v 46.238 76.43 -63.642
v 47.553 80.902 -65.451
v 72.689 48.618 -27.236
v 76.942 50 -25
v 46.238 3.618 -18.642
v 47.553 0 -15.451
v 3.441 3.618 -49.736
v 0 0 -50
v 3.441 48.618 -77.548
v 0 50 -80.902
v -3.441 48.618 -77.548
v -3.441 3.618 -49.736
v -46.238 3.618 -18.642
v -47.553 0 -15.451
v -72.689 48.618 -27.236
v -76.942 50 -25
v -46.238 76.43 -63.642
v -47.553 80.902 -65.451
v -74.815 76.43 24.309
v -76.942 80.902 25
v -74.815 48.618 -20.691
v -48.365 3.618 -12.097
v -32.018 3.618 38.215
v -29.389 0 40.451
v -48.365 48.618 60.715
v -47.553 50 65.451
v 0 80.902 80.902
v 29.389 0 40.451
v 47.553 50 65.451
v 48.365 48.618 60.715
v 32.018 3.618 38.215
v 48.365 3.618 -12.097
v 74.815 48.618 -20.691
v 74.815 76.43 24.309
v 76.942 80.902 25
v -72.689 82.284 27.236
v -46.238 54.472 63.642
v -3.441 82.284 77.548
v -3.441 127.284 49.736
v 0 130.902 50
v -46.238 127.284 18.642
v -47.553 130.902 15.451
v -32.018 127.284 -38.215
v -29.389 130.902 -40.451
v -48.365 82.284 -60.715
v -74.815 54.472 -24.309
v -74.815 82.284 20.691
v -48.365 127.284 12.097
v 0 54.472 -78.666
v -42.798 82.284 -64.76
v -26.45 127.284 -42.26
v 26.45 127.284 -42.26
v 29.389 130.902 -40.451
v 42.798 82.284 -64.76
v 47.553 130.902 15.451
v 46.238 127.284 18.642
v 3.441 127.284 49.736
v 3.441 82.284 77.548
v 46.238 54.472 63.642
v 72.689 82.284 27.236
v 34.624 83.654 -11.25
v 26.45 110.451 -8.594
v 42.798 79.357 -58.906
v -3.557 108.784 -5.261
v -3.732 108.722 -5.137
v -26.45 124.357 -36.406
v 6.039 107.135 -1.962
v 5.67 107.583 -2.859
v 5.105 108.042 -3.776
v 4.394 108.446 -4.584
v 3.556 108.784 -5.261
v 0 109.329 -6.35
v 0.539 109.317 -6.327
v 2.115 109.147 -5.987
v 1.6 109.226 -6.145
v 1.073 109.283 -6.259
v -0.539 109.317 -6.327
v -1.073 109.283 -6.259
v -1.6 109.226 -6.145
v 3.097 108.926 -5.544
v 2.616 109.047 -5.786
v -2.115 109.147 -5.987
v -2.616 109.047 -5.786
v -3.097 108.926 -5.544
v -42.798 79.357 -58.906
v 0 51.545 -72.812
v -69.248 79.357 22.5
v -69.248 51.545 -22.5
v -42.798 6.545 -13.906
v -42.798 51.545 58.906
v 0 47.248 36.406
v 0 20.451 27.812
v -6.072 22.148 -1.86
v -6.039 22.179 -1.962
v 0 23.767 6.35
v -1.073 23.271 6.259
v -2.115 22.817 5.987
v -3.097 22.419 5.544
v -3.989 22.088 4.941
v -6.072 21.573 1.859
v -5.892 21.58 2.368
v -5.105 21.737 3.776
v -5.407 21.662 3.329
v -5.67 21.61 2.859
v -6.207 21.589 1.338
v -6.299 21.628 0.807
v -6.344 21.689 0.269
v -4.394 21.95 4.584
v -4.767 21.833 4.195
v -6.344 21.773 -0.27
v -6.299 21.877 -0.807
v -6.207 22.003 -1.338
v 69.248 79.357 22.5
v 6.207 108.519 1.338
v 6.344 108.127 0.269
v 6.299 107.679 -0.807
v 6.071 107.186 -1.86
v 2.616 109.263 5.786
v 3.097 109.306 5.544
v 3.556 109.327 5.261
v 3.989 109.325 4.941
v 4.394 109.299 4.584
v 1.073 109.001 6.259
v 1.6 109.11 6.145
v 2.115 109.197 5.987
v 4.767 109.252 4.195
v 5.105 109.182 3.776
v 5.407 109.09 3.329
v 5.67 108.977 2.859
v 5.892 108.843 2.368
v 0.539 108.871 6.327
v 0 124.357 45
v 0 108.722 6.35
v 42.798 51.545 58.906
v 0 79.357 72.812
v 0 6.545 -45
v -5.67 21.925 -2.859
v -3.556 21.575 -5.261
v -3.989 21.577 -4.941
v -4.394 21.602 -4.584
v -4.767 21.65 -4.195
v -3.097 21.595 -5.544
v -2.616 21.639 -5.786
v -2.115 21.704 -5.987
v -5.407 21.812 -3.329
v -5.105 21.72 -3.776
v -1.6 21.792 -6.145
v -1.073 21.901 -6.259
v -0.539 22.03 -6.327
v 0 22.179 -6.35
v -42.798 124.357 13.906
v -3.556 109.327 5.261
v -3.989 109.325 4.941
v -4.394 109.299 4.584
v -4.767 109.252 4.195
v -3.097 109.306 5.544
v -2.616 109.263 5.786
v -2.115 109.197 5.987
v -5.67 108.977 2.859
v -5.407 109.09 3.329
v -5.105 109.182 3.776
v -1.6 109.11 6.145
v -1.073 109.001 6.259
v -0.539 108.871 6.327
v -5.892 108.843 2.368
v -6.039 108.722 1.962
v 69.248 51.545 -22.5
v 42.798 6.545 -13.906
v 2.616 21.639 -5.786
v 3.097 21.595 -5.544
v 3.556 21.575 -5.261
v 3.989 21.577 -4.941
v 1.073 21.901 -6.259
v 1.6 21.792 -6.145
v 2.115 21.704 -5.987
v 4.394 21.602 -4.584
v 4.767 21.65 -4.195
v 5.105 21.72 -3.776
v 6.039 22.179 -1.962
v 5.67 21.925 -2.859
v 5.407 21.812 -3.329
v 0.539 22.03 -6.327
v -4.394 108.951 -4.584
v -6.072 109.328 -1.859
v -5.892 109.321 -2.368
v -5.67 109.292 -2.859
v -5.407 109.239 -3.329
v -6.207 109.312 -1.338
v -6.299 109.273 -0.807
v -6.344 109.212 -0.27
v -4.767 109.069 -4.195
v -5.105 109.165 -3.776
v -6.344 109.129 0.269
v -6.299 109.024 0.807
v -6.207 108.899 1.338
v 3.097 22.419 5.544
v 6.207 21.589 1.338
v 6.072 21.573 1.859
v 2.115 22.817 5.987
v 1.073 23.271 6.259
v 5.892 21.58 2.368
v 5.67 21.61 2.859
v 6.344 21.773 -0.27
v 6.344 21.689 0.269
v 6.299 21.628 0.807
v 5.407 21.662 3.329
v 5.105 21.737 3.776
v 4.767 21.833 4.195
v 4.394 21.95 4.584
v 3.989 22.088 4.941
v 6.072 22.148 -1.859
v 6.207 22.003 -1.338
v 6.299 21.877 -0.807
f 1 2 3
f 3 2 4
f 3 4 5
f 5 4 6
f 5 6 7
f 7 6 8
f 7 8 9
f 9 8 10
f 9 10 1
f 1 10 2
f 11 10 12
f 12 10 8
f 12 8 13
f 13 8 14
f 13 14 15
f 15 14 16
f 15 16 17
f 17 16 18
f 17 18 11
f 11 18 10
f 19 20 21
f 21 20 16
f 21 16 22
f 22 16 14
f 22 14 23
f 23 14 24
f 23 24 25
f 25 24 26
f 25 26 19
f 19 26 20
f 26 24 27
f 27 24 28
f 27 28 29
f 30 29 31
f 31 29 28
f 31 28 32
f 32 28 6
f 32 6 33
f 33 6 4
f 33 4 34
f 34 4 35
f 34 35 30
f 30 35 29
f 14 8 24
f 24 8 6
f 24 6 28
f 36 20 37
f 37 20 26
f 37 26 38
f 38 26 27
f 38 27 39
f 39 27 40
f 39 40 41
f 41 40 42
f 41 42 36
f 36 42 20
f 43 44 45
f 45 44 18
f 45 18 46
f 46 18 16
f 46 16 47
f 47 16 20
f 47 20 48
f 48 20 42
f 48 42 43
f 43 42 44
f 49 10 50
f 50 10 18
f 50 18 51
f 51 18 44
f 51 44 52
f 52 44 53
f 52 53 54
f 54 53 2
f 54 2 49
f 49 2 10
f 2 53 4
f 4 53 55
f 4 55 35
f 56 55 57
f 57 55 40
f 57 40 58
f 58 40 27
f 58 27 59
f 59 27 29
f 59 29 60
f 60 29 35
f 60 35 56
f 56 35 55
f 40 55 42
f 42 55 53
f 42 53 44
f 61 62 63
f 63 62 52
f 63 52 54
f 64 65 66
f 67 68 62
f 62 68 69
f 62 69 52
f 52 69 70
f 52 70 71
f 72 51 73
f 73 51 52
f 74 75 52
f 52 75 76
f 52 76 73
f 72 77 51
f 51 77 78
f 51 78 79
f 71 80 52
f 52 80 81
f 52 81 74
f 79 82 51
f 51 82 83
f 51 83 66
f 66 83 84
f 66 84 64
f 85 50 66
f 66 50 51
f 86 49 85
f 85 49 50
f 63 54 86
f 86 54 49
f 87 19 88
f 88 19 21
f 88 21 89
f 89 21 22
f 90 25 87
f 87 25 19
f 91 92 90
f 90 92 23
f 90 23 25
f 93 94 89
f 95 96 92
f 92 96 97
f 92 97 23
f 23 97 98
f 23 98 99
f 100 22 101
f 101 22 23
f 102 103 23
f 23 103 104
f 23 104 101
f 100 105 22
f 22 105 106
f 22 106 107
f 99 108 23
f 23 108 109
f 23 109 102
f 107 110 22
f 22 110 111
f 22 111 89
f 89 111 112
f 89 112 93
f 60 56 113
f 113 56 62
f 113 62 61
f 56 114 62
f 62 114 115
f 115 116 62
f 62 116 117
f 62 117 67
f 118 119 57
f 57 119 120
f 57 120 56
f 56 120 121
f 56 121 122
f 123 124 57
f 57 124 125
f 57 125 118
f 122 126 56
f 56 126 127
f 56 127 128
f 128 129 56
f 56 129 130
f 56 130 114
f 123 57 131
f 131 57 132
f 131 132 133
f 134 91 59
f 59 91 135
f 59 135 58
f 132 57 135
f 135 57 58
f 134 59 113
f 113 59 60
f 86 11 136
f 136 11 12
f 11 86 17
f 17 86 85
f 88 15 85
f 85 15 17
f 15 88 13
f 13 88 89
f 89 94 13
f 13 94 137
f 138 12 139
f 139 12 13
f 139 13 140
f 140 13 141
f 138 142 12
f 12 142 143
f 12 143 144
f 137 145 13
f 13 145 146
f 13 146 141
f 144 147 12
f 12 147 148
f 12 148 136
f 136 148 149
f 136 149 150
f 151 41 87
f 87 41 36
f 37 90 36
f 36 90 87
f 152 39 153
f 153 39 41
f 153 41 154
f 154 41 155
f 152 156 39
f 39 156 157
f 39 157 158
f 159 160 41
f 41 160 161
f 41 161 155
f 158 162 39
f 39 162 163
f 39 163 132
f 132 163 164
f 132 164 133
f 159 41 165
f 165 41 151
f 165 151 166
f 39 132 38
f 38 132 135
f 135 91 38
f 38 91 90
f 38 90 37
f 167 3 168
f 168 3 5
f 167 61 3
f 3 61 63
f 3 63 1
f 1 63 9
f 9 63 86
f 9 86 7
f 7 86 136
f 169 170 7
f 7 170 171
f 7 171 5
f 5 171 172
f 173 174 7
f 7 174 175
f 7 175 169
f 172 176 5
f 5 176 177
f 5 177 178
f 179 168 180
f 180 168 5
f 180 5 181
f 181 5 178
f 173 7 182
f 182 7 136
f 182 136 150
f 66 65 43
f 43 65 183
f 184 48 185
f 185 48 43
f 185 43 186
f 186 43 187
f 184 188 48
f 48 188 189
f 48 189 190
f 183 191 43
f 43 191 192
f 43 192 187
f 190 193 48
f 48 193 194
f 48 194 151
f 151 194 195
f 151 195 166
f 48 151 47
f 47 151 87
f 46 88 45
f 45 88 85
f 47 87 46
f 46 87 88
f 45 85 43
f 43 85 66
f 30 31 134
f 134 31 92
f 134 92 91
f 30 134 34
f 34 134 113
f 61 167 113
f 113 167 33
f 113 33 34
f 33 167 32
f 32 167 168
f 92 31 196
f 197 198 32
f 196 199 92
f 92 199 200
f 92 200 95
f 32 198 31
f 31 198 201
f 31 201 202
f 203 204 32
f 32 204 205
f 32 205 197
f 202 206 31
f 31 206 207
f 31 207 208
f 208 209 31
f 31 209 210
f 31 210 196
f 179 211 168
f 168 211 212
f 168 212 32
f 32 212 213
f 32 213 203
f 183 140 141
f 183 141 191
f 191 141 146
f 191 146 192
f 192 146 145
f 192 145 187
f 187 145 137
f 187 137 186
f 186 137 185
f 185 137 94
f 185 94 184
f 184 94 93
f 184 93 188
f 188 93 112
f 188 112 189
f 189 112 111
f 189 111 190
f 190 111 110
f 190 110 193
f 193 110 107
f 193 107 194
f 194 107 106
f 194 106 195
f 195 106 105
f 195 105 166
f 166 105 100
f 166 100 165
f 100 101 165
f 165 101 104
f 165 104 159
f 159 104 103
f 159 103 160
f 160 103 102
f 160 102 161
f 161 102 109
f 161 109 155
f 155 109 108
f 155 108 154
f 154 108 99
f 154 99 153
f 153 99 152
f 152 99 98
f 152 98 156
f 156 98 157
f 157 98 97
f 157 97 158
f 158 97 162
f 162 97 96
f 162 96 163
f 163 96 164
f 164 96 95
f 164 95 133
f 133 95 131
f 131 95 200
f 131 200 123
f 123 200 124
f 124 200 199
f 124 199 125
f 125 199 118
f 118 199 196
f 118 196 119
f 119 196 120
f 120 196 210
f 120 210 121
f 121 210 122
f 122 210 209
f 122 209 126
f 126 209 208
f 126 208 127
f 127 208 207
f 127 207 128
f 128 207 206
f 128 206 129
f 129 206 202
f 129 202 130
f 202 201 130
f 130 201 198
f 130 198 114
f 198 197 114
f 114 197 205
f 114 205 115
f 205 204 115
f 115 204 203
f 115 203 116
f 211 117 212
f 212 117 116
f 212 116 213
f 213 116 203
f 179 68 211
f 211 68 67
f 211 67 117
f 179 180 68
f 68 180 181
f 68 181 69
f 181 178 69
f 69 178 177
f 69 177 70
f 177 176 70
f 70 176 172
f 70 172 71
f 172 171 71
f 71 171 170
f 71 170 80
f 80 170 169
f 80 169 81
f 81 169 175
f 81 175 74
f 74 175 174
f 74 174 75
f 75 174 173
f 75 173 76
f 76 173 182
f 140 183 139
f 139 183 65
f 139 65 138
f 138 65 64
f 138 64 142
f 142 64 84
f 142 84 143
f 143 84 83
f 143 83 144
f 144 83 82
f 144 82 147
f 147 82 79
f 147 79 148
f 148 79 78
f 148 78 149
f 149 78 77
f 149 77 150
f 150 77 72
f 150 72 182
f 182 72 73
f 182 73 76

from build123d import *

# Parameters (mm, degrees)
CREATION_EXTRUDE_DEPTH = 130.901699304
CREATION_EXTRUDE_TAPER = -26.56505118
SKETCH2_OUTSIDE_W      = 455.432
SKETCH2_OUTSIDE_H      = 443.246
CREATION_CUT_DEPTH     = 130.901699304
CREATION_CUT_TAPER     = 26.56505118
CUT_EXTRUDE_B_DEPTH    = 50.8
C_INV_DEPTH            = 50.8
CUT_EXTRUDE_D_DEPTH    = 50.8
D_INV_DEPTH            = 50.8
CUT_EXTRUDE_E_DEPTH    = 50.8
E_INV_DEPTH            = 50.8
CUT_EXTRUDE_F_DEPTH    = 50.8
F_INV_DEPTH            = 50.8
SKETCH17_R             = 6.35
BOSS_EXTRUDE1_DEPTH    = 127


with BuildPart() as part:
    # Sketch1 → creation_extrude (new body)
    with BuildSketch(Plane(origin=(0, 0, 0), x_dir=(1, 0, 0), z_dir=(0, 1, 0))):
        Polygon((0, 49.999999949), (-47.552825766, 15.450849703), (-29.389262585, -40.450849677), (29.389262585, -40.450849677), (47.552825766, 15.450849703), align=None)
    extrude(amount=CREATION_EXTRUDE_DEPTH, taper=CREATION_EXTRUDE_TAPER)

    # Sketch2 outside → creation_cut (cut)
    with BuildSketch(Plane(origin=(0, 130.901699304, 0), x_dir=(1, 0, 0), z_dir=(0, 1, 0))):
        with Locations((0, 12.5)):
            Rectangle(SKETCH2_OUTSIDE_W, SKETCH2_OUTSIDE_H)
        Polygon((0, -49.999999949), (47.552825766, -15.450849703), (29.389262585, 40.450849677), (-29.389262585, 40.450849677), (-47.552825766, -15.450849703), align=None, mode=Mode.SUBTRACT)
    extrude(amount=-CREATION_CUT_DEPTH, taper=CREATION_CUT_TAPER, mode=Mode.SUBTRACT)

    # Sketch5 → Cut-Extrude B (cut)
    with BuildSketch(Plane(origin=(0, 42.360679738, -84.721359466), x_dir=(-1, 0, 0), z_dir=(-9.08060963965006e-15, 0.4472135955455734, -0.8944271909771081))):
        Polygon((-42.797543189, 44.635254864), (1e-09, 13.541019643), (42.79754319, 44.635254866), (26.450336325, 94.946784308), (-26.450336327, 94.946784307), align=None)
    extrude(amount=-CUT_EXTRUDE_B_DEPTH, mode=Mode.SUBTRACT)

    # Sketch8 → C_inv (cut)
    with BuildSketch(Plane(origin=(-30.776835339, -16.180339872, 9.999999989), x_dir=(0.2446443083020028, 0.12861712429362696, 0.9610446387935747), z_dir=(-0.8506508083303469, -0.4472135955455736, 0.27639320224297786))):
        Polygon((-31.935023341, 77.848060657), (-22.992425992, 25.708717357), (29.358450763, 18.101689683), (52.77047459, 65.539631327), (14.889024305, 102.464919293), align=None)
    extrude(amount=-C_INV_DEPTH, mode=Mode.SUBTRACT)

    # Sketch9 → Cut-Extrude D (cut)
    with BuildSketch(Plane(origin=(49.797965648, 42.360679738, 68.541019594), x_dir=(0.8506508083603209, -0.27639320226847824, -0.44721359547279954), z_dir=(0.5257311121057348, 0.44721359554557366, 0.7236067977315217))):
        Polygon((-4.184405192, 98.473361345), (-54.495934634, 82.126154482), (-54.495934634, 29.22548183), (-4.184405192, 12.878274966), (26.90983003, 55.675818156), align=None)
    extrude(amount=-CUT_EXTRUDE_D_DEPTH, mode=Mode.SUBTRACT)

    # Sketch10 → D_inv (cut)
    with BuildSketch(Plane(origin=(-19.021130306, -16.180339872, -26.180339859), x_dir=(-0.8506508083603233, 0.27639320226847536, 0.44721359547279665), z_dir=(-0.5257311121057309, -0.44721359554557344, -0.7236067977315247))):
        Polygon((31.995934659, 98.473361351), (-18.315594783, 82.126154488), (-18.315594783, 29.225481836), (31.995934659, 12.878274972), (63.090169881, 55.675818162), align=None)
    extrude(amount=-D_INV_DEPTH, mode=Mode.SUBTRACT)

    # Sketch11 → Cut-Extrude E (cut)
    with BuildSketch(Plane(origin=(-49.797965648, 42.360679738, 68.541019594), x_dir=(0.8506508083603298, 0.2763932022684677, 0.447213595472789), z_dir=(-0.5257311121057203, 0.44721359554557355, 0.7236067977315324))):
        Polygon((4.184405192, 98.473361345), (-26.90983003, 55.675818156), (4.184405192, 12.878274966), (54.495934634, 29.22548183), (54.495934634, 82.126154482), align=None)
    extrude(amount=-CUT_EXTRUDE_E_DEPTH, mode=Mode.SUBTRACT)

    # Sketch12 → E_inv (cut)
    with BuildSketch(Plane(origin=(19.021130306, -16.180339872, -26.180339859), x_dir=(-0.8506508083603274, -0.27639320226847064, -0.44721359547279194), z_dir=(0.5257311121057243, -0.44721359554557355, -0.7236067977315294))):
        Polygon((-31.99593466, 98.473361351), (-63.090169881, 55.67581816), (-31.995934658, 12.878274972), (18.315594784, 29.225481837), (18.315594782, 82.126154489), align=None)
    extrude(amount=-E_INV_DEPTH, mode=Mode.SUBTRACT)

    # Sketch13 → Cut-Extrude F (cut)
    with BuildSketch(Plane(origin=(-80.574800989, 42.360679738, -26.180339862), x_dir=(-0.24464430830199108, 0.12861712429362016, 0.9610446387935785), z_dir=(-0.8506508083303513, 0.4472135955455735, -0.2763932022429644))):
        Polygon((-12.522250637, 97.763517637), (-35.934274461, 50.325575991), (1.947175826, 13.400288027), (48.771223471, 38.017146666), (39.828626119, 90.156489966), align=None)
    extrude(amount=-CUT_EXTRUDE_F_DEPTH, mode=Mode.SUBTRACT)

    # Sketch14 → F_inv (cut)
    with BuildSketch(Plane(origin=(30.776835339, -16.180339872, 9.999999989), x_dir=(0.2446443083019939, -0.12861712429362177, -0.9610446387935776), z_dir=(0.8506508083303502, -0.4472135955455736, 0.2763932022429676))):
        Polygon((-29.358450768, 18.101689686), (22.992425988, 25.708717353), (31.935023344, 77.848060652), (-14.889024299, 102.464919294), (-52.770474589, 65.539631333), align=None)
    extrude(amount=-F_INV_DEPTH, mode=Mode.SUBTRACT)


with BuildPart() as body_2:
    # of the pieces the cut leaves, the one that is kept (f_inv_keep)
    add(part.part.solids().sort_by_distance((0, 0, -49.999999949))[0])

    # Sketch17 → Boss-Extrude1 (add)
    with BuildSketch(Plane(origin=(0, 130.901699304, 0), x_dir=(1, 0, 0), z_dir=(0, 1, 0))):
        with Locations(Location((0, 0, 0), (0, 0, 270))):
            Circle(SKETCH17_R)
    extrude(amount=-BOSS_EXTRUDE1_DEPTH)


solid = body_2.part
